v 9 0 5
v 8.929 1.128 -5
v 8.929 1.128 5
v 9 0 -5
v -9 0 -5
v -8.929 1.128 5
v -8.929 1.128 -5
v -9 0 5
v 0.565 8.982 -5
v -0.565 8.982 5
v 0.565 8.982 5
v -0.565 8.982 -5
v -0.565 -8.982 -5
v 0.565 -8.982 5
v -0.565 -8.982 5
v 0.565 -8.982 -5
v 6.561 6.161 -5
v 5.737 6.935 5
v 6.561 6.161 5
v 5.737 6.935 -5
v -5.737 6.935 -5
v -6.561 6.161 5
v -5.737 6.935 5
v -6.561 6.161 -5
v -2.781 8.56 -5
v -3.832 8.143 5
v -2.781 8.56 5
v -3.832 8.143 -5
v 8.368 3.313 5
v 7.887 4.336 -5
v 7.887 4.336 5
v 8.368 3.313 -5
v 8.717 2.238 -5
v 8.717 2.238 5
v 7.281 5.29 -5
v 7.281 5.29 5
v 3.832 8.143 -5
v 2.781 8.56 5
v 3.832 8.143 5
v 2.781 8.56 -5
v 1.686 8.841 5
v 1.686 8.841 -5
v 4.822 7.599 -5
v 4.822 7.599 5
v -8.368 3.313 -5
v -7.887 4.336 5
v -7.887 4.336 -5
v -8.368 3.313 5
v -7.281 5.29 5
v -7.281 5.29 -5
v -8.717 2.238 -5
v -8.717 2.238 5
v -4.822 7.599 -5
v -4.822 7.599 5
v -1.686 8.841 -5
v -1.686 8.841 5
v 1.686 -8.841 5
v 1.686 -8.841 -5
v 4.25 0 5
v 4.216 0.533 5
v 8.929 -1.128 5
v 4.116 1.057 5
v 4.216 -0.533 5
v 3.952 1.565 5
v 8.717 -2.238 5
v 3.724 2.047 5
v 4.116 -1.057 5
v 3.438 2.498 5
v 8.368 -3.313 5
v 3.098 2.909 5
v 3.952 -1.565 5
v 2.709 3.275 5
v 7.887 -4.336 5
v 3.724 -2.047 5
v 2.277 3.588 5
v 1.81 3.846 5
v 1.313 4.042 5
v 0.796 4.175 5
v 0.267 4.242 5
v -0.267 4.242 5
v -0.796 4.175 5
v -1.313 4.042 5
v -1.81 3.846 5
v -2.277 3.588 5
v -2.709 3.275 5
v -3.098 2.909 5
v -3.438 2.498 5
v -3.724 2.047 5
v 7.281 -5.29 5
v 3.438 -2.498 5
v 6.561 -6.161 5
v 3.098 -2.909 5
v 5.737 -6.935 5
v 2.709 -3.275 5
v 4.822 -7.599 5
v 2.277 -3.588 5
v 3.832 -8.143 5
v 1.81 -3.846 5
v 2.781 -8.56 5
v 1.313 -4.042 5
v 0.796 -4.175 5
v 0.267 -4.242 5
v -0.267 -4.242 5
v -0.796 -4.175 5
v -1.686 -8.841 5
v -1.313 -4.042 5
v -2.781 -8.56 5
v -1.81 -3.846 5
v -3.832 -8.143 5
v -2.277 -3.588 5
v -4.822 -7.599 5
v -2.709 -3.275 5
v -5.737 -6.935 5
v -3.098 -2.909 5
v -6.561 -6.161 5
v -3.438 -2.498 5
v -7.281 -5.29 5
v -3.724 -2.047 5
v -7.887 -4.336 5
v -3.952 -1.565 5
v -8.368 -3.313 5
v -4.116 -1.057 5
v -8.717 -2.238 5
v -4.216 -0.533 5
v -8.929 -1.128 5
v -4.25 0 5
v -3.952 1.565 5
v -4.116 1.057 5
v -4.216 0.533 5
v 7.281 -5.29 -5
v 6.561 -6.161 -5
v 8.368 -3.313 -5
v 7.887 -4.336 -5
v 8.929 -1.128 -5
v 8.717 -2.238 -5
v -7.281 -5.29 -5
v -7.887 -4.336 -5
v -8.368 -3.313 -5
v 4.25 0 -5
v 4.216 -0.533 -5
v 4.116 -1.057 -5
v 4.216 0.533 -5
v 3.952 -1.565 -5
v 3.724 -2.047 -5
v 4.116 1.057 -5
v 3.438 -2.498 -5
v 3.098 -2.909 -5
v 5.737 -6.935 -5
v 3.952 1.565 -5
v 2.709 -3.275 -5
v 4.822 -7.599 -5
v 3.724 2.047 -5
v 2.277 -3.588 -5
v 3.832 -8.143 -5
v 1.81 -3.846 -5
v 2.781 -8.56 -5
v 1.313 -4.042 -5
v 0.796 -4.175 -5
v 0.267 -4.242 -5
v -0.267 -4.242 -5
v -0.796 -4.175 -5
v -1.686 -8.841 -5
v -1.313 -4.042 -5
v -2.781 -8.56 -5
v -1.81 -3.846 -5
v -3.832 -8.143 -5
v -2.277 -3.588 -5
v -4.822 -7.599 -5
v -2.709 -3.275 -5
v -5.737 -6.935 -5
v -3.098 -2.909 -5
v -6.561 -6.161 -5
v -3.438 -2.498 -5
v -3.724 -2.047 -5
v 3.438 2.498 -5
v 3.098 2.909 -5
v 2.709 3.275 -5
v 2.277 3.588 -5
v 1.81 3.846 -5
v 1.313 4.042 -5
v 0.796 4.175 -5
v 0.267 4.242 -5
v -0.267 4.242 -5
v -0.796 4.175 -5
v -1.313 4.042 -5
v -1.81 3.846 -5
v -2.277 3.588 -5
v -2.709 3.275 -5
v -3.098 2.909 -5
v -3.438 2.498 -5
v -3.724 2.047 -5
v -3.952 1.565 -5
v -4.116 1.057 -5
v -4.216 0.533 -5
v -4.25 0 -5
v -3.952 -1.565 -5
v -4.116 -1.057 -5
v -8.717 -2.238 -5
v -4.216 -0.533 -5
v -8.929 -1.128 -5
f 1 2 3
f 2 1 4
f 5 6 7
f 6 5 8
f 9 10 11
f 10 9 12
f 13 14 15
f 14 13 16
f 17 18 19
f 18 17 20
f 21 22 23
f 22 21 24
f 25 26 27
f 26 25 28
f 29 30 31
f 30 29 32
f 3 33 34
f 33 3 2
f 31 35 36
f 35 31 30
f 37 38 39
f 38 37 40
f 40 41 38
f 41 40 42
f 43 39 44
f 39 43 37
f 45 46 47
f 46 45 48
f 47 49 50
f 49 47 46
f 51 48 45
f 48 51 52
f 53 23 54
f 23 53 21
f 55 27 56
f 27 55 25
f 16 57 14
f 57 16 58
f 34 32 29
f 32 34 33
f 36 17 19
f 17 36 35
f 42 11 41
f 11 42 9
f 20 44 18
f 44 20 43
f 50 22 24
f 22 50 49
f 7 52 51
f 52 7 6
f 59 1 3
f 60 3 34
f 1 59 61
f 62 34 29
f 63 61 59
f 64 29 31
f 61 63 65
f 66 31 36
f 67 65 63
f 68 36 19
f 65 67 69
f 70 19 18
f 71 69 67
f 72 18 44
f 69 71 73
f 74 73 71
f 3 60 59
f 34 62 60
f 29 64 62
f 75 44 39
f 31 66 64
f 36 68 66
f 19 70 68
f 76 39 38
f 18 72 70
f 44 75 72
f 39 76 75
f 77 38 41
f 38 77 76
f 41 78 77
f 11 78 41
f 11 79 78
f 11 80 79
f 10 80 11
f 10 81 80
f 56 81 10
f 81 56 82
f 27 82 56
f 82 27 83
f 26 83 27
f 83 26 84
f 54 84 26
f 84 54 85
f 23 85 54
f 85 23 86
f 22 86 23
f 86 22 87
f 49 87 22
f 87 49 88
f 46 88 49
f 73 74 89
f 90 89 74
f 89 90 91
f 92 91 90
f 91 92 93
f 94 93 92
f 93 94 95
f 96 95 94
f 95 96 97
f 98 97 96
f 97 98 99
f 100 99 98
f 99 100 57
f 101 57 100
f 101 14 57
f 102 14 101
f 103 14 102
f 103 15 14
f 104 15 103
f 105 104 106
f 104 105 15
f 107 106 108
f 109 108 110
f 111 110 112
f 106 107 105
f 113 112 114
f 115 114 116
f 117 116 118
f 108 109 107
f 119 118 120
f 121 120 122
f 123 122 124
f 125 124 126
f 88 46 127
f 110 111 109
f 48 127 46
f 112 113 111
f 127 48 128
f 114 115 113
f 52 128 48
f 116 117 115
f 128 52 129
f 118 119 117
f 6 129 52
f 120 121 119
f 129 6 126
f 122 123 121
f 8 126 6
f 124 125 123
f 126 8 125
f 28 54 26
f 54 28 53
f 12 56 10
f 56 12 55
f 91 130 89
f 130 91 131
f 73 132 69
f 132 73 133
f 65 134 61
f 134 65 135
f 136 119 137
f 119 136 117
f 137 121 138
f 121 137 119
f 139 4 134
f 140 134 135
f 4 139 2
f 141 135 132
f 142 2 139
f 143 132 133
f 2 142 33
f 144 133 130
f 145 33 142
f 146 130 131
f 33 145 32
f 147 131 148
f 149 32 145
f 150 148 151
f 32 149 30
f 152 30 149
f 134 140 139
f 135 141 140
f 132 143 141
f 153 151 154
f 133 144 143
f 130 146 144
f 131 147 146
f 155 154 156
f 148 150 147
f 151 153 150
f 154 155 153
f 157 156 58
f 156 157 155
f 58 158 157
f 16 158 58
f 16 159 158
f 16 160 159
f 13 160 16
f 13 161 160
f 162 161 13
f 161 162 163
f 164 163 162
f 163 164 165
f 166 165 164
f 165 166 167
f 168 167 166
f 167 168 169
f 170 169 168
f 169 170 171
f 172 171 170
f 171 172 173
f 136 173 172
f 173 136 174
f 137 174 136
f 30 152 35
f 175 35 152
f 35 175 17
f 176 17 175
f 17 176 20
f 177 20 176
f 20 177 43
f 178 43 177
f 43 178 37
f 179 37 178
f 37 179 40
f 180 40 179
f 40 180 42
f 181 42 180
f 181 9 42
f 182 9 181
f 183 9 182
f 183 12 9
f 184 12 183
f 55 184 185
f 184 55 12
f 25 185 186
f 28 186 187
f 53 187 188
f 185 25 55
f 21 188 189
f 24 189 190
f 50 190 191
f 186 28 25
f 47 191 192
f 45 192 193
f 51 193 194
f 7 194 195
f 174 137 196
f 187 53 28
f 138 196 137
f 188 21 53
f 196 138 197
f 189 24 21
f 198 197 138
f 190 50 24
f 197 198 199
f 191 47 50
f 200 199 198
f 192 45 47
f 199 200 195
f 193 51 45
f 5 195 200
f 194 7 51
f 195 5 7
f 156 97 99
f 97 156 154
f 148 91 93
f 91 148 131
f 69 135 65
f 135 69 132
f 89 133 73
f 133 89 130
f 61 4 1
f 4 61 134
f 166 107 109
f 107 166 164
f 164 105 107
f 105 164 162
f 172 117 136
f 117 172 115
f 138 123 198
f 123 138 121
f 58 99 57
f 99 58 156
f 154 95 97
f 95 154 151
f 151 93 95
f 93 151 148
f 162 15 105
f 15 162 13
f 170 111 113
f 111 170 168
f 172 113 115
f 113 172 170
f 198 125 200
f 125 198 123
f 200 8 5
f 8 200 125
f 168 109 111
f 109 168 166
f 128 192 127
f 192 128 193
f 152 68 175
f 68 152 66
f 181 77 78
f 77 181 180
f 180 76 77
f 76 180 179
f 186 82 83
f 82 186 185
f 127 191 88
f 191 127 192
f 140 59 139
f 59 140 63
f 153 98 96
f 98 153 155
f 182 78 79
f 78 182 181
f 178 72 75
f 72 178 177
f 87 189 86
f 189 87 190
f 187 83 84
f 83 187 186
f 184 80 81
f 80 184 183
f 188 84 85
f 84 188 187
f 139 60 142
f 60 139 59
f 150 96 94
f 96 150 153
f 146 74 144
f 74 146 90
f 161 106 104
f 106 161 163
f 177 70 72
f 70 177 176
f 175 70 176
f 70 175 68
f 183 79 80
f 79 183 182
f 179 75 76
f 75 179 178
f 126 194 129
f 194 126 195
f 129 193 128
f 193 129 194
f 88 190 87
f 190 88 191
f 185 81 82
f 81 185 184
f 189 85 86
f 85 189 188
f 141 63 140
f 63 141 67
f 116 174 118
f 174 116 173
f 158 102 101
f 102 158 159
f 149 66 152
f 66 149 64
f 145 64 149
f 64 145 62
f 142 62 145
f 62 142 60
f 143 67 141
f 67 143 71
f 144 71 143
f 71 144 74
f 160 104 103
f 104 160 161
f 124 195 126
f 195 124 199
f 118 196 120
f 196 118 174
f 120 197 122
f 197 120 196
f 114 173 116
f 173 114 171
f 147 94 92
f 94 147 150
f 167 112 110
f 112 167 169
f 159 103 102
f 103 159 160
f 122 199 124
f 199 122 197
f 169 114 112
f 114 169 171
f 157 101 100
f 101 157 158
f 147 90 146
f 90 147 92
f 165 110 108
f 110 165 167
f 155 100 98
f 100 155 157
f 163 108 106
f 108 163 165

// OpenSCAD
$fn = 50;


difference() {
	union() {
		translate(v = [0, 0, -5.0000000000]) {
			cylinder(h = 10, r = 9.0000000000);
		}
	}
	union() {
		translate(v = [0, 0, -100.0000000000]) {
			cylinder(h = 200, r = 4.2500000000);
		}
	}
}
